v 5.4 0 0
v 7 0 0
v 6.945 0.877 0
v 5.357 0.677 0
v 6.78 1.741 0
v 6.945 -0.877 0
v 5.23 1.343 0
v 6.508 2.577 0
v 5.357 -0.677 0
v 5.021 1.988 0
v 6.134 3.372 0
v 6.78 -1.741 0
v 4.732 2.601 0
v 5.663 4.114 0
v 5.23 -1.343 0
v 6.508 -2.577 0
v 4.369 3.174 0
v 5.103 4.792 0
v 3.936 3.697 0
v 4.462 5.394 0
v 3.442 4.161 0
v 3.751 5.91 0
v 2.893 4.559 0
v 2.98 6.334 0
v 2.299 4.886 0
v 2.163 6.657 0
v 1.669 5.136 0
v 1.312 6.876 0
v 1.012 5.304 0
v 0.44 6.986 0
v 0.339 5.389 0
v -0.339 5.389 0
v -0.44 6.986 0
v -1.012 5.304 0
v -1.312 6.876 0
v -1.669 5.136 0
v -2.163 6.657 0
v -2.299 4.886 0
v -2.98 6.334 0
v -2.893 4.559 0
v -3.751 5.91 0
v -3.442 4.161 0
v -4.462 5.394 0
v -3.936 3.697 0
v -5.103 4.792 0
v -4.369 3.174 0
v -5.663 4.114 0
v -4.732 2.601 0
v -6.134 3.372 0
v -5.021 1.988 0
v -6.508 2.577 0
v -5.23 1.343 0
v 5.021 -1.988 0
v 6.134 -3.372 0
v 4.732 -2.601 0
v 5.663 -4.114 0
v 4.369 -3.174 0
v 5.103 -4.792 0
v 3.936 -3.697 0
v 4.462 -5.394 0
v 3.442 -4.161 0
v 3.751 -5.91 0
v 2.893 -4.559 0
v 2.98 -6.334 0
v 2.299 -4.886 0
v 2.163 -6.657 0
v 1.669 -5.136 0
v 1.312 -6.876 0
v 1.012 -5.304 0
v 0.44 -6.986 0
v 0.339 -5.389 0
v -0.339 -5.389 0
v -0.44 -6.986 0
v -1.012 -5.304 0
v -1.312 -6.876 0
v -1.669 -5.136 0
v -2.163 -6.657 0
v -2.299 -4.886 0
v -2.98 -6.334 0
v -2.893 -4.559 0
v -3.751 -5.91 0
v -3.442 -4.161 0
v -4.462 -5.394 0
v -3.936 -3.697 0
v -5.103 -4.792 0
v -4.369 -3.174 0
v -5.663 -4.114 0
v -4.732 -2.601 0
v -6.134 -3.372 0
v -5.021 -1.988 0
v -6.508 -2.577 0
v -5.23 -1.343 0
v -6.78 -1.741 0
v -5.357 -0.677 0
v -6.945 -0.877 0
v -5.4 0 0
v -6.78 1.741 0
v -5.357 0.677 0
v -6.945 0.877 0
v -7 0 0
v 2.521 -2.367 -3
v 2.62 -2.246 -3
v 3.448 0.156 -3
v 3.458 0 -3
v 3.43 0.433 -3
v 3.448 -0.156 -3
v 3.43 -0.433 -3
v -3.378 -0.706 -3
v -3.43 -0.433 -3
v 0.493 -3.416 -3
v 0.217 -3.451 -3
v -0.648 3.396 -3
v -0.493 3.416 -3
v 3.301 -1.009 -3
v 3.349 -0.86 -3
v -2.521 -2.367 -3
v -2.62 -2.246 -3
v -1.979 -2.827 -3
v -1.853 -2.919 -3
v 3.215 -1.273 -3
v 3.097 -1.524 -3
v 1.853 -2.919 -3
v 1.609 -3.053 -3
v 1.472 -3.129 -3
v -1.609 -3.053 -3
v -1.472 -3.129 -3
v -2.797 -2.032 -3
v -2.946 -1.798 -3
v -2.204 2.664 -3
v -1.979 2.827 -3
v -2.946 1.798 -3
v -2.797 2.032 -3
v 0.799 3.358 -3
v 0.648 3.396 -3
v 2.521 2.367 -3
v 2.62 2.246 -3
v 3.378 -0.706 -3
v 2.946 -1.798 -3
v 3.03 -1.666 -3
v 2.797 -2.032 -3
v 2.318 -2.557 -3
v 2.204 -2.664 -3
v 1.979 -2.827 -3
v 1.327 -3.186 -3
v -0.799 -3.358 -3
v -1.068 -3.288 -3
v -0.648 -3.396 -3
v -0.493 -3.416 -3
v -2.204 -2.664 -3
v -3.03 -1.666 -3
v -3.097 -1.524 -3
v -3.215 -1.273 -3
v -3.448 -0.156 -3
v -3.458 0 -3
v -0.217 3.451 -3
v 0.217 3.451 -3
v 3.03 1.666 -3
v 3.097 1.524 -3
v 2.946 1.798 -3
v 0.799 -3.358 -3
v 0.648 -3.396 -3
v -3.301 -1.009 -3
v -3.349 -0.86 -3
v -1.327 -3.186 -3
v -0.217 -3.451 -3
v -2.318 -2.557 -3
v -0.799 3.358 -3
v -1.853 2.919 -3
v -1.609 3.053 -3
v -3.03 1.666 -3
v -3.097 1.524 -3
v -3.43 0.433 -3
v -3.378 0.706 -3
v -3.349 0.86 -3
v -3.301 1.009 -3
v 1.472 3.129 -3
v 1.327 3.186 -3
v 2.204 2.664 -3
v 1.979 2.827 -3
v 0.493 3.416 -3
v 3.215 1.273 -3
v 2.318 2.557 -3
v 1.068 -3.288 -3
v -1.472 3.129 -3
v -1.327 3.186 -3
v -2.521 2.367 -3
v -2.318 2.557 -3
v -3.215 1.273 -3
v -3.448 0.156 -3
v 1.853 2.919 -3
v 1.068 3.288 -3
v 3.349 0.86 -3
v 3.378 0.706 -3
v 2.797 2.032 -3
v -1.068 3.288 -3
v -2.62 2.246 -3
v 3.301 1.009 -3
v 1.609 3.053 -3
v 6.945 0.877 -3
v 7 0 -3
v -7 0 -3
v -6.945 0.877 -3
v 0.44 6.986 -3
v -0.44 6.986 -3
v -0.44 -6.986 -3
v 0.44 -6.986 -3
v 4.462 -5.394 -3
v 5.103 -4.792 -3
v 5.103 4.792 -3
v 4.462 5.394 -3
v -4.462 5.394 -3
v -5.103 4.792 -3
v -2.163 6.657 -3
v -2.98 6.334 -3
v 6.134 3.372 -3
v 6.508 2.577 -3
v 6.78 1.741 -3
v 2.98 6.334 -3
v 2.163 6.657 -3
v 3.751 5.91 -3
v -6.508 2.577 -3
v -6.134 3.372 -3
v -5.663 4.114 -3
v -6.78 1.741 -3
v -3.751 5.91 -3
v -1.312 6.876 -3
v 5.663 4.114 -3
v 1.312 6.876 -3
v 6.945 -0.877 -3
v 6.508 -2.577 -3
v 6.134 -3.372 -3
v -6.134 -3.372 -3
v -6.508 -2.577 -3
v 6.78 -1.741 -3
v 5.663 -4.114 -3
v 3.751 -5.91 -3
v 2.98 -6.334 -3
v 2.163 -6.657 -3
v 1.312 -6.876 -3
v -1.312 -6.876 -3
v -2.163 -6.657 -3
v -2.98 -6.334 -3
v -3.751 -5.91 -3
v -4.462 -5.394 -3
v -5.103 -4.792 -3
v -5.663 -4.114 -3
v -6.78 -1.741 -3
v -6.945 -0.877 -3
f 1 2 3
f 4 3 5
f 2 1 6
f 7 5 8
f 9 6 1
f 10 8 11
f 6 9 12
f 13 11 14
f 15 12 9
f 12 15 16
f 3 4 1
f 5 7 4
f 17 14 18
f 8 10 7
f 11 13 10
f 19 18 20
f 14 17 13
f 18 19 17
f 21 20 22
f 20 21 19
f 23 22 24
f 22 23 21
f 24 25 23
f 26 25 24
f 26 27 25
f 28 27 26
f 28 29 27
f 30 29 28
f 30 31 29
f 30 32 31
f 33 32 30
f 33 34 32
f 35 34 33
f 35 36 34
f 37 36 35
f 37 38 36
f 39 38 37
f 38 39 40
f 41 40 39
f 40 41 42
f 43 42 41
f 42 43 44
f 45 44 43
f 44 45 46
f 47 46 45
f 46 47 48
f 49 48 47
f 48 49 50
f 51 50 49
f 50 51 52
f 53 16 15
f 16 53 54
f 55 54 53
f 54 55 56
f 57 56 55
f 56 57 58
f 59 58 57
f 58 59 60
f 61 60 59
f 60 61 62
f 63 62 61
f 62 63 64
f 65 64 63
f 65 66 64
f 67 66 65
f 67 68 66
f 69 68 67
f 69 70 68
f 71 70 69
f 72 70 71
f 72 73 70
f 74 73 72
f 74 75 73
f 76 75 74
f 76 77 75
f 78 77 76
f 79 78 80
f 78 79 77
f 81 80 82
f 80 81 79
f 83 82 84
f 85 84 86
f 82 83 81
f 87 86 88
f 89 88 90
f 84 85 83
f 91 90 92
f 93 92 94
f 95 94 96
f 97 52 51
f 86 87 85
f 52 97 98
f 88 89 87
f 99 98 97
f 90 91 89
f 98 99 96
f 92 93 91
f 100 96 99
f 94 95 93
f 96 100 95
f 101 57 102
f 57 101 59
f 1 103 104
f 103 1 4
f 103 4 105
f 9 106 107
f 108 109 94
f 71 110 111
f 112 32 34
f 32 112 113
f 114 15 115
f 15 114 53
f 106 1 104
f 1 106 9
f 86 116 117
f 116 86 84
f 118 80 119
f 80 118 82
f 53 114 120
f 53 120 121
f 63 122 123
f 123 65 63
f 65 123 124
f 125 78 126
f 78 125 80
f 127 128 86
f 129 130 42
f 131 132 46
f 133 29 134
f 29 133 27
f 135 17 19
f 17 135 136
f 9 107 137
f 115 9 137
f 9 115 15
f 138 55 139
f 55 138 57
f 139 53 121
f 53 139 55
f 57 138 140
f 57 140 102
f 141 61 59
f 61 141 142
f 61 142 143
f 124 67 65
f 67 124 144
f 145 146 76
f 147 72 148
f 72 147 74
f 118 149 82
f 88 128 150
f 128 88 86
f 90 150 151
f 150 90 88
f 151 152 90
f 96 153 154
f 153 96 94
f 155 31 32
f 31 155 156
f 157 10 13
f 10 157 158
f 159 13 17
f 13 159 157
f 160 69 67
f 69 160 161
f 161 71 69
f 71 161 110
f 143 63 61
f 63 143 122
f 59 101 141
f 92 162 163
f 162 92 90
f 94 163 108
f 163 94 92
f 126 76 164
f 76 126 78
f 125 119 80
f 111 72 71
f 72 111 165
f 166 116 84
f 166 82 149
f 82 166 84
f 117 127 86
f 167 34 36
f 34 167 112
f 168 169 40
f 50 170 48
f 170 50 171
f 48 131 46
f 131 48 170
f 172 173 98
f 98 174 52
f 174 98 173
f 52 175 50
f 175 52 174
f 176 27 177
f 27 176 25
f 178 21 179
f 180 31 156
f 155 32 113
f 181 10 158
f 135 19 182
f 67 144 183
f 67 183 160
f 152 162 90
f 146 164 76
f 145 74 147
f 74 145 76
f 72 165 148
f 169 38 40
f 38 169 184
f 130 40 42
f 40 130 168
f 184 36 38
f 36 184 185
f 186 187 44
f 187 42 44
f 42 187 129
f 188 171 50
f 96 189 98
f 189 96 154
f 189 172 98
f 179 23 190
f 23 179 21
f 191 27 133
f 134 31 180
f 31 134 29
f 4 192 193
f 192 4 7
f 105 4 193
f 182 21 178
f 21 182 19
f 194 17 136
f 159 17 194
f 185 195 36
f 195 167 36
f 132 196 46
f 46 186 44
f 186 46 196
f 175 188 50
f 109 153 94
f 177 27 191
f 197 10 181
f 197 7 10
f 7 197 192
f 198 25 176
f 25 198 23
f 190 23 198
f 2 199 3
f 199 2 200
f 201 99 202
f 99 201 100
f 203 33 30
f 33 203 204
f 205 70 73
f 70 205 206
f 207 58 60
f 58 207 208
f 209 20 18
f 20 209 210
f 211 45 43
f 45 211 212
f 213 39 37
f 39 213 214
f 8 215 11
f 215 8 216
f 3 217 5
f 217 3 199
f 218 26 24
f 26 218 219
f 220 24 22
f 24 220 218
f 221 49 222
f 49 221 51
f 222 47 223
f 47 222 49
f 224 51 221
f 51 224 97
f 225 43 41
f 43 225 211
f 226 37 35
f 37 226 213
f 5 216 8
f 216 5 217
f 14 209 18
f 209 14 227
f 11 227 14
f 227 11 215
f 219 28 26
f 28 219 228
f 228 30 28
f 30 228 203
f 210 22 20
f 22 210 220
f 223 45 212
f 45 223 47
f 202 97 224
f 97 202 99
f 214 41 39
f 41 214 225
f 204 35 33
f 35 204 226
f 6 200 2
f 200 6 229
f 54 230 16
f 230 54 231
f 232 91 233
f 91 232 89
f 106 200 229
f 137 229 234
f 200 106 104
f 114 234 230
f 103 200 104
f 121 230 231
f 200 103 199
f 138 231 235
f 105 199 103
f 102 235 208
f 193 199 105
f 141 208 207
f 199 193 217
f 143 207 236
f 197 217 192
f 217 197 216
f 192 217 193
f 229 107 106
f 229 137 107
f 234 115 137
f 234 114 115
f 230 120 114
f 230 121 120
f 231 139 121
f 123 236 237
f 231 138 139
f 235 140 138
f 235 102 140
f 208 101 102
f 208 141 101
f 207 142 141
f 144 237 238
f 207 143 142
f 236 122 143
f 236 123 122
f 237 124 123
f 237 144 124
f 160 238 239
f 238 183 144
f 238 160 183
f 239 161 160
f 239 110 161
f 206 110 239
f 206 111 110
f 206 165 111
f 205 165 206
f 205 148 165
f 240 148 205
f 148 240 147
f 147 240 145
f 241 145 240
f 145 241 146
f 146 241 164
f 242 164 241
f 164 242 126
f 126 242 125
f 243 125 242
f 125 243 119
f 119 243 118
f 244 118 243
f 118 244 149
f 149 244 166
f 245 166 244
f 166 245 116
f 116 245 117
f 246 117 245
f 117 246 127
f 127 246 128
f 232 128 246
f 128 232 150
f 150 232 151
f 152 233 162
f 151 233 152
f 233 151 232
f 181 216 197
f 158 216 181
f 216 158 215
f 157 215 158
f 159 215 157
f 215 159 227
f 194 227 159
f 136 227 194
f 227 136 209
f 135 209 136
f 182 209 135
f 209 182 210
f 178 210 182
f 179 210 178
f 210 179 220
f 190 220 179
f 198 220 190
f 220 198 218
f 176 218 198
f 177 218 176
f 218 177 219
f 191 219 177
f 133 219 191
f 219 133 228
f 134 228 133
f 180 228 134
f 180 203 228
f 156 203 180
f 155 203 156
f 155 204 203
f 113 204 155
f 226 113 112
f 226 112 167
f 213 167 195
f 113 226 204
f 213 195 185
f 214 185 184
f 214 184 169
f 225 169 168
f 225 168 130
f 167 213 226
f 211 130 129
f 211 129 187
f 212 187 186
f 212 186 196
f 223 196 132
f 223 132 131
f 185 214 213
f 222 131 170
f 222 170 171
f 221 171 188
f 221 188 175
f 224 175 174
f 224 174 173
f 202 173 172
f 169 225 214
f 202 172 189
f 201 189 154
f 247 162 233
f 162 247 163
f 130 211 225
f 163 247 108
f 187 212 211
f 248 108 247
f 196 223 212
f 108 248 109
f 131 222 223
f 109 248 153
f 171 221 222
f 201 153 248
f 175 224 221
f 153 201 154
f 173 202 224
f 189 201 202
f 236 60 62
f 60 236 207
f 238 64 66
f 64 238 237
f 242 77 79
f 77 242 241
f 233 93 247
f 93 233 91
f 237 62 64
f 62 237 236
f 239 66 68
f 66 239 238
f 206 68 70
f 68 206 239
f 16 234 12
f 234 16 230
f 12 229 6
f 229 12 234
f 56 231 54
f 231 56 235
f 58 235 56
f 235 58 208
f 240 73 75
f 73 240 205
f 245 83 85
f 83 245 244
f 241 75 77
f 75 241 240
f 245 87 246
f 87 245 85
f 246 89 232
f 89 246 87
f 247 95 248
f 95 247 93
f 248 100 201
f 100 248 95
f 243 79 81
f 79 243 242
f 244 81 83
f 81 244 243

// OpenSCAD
$fn = 50;


difference() {
	union() {
		translate(v = [0, 0, -3.0000000000]) {
			cylinder(h = 3, r = 7.0000000000);
		}
		cylinder(h = 0, r = 13.0000000000);
	}
	union() {
		translate(v = [0, 0, 0]) {
			rotate(a = [0, 0, 0]) {
				difference() {
					union() {
						#translate(v = [0, 0, -3.0000000000]) {
							cylinder(h = 3, r = 2.6000000000);
						}
						#translate(v = [0, 0, -3.9000000000]) {
							cylinder(h = 3.9000000000, r1 = 2.8750000000, r2 = 5.4000000000);
						}
						#translate(v = [0, 0, -3.0000000000]) {
							cylinder(h = 3, r = 2.8750000000);
						}
						#translate(v = [0, 0, -3.0000000000]) {
							cylinder(h = 3, r = 2.6000000000);
						}
					}
					union();
				}
			}
		}
	}
}
